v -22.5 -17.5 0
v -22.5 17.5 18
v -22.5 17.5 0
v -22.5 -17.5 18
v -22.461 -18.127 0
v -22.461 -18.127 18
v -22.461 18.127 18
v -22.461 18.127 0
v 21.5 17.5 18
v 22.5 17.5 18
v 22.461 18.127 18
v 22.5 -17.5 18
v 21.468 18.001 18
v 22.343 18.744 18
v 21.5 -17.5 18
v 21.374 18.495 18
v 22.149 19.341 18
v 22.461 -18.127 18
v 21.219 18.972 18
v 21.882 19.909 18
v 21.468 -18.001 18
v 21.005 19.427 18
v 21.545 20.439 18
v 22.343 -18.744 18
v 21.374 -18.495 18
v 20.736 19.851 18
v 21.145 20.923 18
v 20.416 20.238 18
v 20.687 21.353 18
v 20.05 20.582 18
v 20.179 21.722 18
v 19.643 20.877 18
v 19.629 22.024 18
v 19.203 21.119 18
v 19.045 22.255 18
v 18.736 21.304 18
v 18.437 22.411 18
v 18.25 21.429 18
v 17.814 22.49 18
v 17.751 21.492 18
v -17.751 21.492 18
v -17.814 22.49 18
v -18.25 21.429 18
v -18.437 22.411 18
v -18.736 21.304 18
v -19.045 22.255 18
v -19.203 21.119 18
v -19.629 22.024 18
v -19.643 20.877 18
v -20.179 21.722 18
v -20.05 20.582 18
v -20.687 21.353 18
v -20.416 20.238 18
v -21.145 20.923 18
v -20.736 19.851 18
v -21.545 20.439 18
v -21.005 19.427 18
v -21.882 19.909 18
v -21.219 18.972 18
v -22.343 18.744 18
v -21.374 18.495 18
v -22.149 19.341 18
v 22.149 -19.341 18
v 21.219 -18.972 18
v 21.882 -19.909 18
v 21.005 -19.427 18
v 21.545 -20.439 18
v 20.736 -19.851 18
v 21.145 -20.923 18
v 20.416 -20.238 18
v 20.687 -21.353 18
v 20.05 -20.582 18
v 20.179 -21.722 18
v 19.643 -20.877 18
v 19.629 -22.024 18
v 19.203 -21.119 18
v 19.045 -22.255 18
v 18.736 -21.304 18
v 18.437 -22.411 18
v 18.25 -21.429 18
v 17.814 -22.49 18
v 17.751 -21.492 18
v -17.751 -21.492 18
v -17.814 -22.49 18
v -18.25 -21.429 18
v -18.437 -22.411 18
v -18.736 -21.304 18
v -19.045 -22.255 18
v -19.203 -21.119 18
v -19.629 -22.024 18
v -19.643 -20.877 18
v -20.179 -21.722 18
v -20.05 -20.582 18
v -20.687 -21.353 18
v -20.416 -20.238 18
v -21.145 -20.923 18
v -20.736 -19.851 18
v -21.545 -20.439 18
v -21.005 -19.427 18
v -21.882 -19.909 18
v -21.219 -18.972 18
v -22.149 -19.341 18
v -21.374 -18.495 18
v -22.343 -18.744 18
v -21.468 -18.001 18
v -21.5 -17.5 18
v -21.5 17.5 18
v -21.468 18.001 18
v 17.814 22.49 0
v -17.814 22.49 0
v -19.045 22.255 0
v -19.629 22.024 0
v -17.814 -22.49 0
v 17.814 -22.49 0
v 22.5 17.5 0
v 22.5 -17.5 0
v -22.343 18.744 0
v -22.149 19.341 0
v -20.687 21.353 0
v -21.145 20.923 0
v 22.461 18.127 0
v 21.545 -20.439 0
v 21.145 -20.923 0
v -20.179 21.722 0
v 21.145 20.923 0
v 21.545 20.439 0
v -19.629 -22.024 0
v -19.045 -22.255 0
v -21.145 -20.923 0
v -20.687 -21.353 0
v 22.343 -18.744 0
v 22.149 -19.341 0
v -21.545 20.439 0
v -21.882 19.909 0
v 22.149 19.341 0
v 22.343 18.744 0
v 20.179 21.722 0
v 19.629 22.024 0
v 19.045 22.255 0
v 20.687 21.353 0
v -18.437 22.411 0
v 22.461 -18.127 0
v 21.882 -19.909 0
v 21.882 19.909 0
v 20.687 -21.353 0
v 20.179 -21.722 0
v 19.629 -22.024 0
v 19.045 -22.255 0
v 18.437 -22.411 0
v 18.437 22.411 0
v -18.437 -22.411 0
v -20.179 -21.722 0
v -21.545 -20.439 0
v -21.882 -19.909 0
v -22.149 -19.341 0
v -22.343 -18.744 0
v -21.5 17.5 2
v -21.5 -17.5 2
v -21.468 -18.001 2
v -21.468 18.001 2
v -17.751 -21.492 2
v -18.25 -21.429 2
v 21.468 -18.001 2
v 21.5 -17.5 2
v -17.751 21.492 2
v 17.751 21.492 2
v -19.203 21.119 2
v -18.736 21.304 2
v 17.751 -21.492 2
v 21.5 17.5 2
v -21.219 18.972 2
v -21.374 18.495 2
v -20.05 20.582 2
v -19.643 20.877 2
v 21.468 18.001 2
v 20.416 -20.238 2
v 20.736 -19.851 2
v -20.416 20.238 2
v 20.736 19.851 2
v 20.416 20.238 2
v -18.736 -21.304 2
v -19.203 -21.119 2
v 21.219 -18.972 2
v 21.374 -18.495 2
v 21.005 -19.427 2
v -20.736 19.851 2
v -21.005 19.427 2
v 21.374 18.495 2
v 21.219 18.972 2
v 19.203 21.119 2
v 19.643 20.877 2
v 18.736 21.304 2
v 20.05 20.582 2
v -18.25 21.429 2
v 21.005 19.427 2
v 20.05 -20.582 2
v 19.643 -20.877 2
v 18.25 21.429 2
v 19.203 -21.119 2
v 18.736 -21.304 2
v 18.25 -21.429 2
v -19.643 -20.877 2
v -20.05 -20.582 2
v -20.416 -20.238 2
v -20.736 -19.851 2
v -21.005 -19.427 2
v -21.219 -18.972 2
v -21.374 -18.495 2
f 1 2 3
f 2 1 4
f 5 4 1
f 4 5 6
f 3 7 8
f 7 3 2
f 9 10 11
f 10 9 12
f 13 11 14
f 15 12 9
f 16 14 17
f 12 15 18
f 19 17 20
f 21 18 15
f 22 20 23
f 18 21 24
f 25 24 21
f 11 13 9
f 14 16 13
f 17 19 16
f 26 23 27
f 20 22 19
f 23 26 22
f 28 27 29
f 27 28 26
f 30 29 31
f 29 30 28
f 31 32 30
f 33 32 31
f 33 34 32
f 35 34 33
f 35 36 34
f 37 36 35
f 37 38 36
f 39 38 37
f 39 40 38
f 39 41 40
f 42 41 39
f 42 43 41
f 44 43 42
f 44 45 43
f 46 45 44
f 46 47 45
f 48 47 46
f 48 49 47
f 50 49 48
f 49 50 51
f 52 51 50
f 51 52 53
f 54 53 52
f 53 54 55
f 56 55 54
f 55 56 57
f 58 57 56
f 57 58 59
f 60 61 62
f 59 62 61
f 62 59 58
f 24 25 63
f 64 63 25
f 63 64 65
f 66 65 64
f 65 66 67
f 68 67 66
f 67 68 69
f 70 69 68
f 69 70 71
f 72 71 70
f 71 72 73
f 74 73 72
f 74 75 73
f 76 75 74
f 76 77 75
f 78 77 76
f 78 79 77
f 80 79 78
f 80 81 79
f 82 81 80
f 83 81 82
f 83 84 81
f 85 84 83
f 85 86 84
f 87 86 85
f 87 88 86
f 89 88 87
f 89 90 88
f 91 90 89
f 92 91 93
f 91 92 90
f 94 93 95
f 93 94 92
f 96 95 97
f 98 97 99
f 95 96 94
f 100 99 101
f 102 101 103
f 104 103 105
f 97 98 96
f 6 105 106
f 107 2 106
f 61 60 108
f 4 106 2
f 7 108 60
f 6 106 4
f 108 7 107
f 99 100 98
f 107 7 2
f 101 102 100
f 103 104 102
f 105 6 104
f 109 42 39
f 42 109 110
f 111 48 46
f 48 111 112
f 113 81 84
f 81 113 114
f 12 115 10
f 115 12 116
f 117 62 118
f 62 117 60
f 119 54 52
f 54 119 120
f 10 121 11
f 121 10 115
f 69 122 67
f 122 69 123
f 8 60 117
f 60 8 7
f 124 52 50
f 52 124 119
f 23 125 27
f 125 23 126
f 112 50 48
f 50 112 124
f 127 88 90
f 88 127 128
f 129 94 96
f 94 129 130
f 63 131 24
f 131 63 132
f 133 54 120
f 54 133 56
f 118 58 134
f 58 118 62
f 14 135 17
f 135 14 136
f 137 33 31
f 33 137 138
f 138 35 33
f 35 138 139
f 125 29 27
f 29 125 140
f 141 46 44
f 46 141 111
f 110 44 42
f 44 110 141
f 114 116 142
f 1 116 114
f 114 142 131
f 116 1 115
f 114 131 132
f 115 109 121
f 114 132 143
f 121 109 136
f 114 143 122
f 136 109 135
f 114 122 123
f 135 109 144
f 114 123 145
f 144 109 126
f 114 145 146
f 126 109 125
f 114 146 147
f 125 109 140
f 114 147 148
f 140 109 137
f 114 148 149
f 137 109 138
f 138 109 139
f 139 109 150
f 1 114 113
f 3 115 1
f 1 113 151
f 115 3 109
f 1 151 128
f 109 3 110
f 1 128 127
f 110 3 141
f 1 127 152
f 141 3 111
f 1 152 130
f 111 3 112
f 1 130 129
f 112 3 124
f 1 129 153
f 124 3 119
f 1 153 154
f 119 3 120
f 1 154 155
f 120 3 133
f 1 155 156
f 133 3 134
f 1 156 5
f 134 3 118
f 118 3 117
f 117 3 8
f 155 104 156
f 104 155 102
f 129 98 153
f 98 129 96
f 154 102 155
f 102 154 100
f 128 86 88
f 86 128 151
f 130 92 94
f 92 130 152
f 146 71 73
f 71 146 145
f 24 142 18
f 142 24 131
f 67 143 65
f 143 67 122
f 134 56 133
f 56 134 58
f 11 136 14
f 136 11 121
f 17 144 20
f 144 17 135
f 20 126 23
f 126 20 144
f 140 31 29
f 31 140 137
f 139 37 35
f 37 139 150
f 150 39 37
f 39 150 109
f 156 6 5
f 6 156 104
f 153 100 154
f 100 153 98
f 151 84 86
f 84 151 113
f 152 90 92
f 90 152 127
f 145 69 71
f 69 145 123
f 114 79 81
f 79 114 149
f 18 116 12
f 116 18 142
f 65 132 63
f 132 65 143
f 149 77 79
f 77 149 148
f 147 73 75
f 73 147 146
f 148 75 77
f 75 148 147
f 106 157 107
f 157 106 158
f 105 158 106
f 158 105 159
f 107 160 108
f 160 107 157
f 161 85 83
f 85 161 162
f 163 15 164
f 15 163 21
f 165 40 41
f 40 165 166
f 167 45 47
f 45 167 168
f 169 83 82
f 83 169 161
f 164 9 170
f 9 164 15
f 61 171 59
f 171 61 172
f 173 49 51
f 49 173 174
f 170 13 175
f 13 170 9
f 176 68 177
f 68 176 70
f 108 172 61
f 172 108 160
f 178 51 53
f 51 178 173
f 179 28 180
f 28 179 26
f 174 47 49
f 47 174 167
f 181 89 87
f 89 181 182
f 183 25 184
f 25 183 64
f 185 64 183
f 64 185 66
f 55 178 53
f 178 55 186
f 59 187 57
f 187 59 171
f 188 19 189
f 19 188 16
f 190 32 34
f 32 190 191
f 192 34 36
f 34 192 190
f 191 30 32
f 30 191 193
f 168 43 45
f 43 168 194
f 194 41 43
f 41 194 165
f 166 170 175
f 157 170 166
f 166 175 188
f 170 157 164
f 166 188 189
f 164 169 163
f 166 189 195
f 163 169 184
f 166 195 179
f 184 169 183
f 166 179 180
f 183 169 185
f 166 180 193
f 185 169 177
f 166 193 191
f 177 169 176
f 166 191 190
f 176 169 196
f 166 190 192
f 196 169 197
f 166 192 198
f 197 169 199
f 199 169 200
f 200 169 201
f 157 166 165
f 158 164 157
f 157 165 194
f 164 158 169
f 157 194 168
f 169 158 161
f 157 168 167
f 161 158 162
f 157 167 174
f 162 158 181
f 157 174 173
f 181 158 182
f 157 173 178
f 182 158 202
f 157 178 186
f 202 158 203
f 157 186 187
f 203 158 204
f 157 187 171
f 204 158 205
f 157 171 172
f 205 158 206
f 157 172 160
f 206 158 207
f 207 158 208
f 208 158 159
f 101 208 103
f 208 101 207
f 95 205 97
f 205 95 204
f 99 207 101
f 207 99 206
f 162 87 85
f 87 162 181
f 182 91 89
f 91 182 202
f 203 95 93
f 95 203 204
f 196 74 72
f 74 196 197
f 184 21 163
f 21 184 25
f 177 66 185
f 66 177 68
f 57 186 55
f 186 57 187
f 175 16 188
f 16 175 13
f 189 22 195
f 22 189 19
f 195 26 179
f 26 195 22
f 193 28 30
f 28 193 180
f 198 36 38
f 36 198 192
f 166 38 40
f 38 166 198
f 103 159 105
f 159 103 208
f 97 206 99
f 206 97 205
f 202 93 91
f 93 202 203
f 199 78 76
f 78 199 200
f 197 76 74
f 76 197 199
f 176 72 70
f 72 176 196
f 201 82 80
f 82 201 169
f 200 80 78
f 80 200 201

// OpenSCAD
$fn = 50;


difference() {
	union() {
		hull() {
			translate(v = [-17.5000000000, 17.5000000000, 0]) {
				cylinder(h = 18, r = 5);
			}
			translate(v = [17.5000000000, 17.5000000000, 0]) {
				cylinder(h = 18, r = 5);
			}
			translate(v = [-17.5000000000, -17.5000000000, 0]) {
				cylinder(h = 18, r = 5);
			}
			translate(v = [17.5000000000, -17.5000000000, 0]) {
				cylinder(h = 18, r = 5);
			}
		}
	}
	union() {
		translate(v = [0, 0, 2]) {
			hull() {
				translate(v = [-17.5000000000, 17.5000000000, 0]) {
					cylinder(h = 16, r = 4);
				}
				translate(v = [17.5000000000, 17.5000000000, 0]) {
					cylinder(h = 16, r = 4);
				}
				translate(v = [-17.5000000000, -17.5000000000, 0]) {
					cylinder(h = 16, r = 4);
				}
				translate(v = [17.5000000000, -17.5000000000, 0]) {
					cylinder(h = 16, r = 4);
				}
			}
		}
	}
}
